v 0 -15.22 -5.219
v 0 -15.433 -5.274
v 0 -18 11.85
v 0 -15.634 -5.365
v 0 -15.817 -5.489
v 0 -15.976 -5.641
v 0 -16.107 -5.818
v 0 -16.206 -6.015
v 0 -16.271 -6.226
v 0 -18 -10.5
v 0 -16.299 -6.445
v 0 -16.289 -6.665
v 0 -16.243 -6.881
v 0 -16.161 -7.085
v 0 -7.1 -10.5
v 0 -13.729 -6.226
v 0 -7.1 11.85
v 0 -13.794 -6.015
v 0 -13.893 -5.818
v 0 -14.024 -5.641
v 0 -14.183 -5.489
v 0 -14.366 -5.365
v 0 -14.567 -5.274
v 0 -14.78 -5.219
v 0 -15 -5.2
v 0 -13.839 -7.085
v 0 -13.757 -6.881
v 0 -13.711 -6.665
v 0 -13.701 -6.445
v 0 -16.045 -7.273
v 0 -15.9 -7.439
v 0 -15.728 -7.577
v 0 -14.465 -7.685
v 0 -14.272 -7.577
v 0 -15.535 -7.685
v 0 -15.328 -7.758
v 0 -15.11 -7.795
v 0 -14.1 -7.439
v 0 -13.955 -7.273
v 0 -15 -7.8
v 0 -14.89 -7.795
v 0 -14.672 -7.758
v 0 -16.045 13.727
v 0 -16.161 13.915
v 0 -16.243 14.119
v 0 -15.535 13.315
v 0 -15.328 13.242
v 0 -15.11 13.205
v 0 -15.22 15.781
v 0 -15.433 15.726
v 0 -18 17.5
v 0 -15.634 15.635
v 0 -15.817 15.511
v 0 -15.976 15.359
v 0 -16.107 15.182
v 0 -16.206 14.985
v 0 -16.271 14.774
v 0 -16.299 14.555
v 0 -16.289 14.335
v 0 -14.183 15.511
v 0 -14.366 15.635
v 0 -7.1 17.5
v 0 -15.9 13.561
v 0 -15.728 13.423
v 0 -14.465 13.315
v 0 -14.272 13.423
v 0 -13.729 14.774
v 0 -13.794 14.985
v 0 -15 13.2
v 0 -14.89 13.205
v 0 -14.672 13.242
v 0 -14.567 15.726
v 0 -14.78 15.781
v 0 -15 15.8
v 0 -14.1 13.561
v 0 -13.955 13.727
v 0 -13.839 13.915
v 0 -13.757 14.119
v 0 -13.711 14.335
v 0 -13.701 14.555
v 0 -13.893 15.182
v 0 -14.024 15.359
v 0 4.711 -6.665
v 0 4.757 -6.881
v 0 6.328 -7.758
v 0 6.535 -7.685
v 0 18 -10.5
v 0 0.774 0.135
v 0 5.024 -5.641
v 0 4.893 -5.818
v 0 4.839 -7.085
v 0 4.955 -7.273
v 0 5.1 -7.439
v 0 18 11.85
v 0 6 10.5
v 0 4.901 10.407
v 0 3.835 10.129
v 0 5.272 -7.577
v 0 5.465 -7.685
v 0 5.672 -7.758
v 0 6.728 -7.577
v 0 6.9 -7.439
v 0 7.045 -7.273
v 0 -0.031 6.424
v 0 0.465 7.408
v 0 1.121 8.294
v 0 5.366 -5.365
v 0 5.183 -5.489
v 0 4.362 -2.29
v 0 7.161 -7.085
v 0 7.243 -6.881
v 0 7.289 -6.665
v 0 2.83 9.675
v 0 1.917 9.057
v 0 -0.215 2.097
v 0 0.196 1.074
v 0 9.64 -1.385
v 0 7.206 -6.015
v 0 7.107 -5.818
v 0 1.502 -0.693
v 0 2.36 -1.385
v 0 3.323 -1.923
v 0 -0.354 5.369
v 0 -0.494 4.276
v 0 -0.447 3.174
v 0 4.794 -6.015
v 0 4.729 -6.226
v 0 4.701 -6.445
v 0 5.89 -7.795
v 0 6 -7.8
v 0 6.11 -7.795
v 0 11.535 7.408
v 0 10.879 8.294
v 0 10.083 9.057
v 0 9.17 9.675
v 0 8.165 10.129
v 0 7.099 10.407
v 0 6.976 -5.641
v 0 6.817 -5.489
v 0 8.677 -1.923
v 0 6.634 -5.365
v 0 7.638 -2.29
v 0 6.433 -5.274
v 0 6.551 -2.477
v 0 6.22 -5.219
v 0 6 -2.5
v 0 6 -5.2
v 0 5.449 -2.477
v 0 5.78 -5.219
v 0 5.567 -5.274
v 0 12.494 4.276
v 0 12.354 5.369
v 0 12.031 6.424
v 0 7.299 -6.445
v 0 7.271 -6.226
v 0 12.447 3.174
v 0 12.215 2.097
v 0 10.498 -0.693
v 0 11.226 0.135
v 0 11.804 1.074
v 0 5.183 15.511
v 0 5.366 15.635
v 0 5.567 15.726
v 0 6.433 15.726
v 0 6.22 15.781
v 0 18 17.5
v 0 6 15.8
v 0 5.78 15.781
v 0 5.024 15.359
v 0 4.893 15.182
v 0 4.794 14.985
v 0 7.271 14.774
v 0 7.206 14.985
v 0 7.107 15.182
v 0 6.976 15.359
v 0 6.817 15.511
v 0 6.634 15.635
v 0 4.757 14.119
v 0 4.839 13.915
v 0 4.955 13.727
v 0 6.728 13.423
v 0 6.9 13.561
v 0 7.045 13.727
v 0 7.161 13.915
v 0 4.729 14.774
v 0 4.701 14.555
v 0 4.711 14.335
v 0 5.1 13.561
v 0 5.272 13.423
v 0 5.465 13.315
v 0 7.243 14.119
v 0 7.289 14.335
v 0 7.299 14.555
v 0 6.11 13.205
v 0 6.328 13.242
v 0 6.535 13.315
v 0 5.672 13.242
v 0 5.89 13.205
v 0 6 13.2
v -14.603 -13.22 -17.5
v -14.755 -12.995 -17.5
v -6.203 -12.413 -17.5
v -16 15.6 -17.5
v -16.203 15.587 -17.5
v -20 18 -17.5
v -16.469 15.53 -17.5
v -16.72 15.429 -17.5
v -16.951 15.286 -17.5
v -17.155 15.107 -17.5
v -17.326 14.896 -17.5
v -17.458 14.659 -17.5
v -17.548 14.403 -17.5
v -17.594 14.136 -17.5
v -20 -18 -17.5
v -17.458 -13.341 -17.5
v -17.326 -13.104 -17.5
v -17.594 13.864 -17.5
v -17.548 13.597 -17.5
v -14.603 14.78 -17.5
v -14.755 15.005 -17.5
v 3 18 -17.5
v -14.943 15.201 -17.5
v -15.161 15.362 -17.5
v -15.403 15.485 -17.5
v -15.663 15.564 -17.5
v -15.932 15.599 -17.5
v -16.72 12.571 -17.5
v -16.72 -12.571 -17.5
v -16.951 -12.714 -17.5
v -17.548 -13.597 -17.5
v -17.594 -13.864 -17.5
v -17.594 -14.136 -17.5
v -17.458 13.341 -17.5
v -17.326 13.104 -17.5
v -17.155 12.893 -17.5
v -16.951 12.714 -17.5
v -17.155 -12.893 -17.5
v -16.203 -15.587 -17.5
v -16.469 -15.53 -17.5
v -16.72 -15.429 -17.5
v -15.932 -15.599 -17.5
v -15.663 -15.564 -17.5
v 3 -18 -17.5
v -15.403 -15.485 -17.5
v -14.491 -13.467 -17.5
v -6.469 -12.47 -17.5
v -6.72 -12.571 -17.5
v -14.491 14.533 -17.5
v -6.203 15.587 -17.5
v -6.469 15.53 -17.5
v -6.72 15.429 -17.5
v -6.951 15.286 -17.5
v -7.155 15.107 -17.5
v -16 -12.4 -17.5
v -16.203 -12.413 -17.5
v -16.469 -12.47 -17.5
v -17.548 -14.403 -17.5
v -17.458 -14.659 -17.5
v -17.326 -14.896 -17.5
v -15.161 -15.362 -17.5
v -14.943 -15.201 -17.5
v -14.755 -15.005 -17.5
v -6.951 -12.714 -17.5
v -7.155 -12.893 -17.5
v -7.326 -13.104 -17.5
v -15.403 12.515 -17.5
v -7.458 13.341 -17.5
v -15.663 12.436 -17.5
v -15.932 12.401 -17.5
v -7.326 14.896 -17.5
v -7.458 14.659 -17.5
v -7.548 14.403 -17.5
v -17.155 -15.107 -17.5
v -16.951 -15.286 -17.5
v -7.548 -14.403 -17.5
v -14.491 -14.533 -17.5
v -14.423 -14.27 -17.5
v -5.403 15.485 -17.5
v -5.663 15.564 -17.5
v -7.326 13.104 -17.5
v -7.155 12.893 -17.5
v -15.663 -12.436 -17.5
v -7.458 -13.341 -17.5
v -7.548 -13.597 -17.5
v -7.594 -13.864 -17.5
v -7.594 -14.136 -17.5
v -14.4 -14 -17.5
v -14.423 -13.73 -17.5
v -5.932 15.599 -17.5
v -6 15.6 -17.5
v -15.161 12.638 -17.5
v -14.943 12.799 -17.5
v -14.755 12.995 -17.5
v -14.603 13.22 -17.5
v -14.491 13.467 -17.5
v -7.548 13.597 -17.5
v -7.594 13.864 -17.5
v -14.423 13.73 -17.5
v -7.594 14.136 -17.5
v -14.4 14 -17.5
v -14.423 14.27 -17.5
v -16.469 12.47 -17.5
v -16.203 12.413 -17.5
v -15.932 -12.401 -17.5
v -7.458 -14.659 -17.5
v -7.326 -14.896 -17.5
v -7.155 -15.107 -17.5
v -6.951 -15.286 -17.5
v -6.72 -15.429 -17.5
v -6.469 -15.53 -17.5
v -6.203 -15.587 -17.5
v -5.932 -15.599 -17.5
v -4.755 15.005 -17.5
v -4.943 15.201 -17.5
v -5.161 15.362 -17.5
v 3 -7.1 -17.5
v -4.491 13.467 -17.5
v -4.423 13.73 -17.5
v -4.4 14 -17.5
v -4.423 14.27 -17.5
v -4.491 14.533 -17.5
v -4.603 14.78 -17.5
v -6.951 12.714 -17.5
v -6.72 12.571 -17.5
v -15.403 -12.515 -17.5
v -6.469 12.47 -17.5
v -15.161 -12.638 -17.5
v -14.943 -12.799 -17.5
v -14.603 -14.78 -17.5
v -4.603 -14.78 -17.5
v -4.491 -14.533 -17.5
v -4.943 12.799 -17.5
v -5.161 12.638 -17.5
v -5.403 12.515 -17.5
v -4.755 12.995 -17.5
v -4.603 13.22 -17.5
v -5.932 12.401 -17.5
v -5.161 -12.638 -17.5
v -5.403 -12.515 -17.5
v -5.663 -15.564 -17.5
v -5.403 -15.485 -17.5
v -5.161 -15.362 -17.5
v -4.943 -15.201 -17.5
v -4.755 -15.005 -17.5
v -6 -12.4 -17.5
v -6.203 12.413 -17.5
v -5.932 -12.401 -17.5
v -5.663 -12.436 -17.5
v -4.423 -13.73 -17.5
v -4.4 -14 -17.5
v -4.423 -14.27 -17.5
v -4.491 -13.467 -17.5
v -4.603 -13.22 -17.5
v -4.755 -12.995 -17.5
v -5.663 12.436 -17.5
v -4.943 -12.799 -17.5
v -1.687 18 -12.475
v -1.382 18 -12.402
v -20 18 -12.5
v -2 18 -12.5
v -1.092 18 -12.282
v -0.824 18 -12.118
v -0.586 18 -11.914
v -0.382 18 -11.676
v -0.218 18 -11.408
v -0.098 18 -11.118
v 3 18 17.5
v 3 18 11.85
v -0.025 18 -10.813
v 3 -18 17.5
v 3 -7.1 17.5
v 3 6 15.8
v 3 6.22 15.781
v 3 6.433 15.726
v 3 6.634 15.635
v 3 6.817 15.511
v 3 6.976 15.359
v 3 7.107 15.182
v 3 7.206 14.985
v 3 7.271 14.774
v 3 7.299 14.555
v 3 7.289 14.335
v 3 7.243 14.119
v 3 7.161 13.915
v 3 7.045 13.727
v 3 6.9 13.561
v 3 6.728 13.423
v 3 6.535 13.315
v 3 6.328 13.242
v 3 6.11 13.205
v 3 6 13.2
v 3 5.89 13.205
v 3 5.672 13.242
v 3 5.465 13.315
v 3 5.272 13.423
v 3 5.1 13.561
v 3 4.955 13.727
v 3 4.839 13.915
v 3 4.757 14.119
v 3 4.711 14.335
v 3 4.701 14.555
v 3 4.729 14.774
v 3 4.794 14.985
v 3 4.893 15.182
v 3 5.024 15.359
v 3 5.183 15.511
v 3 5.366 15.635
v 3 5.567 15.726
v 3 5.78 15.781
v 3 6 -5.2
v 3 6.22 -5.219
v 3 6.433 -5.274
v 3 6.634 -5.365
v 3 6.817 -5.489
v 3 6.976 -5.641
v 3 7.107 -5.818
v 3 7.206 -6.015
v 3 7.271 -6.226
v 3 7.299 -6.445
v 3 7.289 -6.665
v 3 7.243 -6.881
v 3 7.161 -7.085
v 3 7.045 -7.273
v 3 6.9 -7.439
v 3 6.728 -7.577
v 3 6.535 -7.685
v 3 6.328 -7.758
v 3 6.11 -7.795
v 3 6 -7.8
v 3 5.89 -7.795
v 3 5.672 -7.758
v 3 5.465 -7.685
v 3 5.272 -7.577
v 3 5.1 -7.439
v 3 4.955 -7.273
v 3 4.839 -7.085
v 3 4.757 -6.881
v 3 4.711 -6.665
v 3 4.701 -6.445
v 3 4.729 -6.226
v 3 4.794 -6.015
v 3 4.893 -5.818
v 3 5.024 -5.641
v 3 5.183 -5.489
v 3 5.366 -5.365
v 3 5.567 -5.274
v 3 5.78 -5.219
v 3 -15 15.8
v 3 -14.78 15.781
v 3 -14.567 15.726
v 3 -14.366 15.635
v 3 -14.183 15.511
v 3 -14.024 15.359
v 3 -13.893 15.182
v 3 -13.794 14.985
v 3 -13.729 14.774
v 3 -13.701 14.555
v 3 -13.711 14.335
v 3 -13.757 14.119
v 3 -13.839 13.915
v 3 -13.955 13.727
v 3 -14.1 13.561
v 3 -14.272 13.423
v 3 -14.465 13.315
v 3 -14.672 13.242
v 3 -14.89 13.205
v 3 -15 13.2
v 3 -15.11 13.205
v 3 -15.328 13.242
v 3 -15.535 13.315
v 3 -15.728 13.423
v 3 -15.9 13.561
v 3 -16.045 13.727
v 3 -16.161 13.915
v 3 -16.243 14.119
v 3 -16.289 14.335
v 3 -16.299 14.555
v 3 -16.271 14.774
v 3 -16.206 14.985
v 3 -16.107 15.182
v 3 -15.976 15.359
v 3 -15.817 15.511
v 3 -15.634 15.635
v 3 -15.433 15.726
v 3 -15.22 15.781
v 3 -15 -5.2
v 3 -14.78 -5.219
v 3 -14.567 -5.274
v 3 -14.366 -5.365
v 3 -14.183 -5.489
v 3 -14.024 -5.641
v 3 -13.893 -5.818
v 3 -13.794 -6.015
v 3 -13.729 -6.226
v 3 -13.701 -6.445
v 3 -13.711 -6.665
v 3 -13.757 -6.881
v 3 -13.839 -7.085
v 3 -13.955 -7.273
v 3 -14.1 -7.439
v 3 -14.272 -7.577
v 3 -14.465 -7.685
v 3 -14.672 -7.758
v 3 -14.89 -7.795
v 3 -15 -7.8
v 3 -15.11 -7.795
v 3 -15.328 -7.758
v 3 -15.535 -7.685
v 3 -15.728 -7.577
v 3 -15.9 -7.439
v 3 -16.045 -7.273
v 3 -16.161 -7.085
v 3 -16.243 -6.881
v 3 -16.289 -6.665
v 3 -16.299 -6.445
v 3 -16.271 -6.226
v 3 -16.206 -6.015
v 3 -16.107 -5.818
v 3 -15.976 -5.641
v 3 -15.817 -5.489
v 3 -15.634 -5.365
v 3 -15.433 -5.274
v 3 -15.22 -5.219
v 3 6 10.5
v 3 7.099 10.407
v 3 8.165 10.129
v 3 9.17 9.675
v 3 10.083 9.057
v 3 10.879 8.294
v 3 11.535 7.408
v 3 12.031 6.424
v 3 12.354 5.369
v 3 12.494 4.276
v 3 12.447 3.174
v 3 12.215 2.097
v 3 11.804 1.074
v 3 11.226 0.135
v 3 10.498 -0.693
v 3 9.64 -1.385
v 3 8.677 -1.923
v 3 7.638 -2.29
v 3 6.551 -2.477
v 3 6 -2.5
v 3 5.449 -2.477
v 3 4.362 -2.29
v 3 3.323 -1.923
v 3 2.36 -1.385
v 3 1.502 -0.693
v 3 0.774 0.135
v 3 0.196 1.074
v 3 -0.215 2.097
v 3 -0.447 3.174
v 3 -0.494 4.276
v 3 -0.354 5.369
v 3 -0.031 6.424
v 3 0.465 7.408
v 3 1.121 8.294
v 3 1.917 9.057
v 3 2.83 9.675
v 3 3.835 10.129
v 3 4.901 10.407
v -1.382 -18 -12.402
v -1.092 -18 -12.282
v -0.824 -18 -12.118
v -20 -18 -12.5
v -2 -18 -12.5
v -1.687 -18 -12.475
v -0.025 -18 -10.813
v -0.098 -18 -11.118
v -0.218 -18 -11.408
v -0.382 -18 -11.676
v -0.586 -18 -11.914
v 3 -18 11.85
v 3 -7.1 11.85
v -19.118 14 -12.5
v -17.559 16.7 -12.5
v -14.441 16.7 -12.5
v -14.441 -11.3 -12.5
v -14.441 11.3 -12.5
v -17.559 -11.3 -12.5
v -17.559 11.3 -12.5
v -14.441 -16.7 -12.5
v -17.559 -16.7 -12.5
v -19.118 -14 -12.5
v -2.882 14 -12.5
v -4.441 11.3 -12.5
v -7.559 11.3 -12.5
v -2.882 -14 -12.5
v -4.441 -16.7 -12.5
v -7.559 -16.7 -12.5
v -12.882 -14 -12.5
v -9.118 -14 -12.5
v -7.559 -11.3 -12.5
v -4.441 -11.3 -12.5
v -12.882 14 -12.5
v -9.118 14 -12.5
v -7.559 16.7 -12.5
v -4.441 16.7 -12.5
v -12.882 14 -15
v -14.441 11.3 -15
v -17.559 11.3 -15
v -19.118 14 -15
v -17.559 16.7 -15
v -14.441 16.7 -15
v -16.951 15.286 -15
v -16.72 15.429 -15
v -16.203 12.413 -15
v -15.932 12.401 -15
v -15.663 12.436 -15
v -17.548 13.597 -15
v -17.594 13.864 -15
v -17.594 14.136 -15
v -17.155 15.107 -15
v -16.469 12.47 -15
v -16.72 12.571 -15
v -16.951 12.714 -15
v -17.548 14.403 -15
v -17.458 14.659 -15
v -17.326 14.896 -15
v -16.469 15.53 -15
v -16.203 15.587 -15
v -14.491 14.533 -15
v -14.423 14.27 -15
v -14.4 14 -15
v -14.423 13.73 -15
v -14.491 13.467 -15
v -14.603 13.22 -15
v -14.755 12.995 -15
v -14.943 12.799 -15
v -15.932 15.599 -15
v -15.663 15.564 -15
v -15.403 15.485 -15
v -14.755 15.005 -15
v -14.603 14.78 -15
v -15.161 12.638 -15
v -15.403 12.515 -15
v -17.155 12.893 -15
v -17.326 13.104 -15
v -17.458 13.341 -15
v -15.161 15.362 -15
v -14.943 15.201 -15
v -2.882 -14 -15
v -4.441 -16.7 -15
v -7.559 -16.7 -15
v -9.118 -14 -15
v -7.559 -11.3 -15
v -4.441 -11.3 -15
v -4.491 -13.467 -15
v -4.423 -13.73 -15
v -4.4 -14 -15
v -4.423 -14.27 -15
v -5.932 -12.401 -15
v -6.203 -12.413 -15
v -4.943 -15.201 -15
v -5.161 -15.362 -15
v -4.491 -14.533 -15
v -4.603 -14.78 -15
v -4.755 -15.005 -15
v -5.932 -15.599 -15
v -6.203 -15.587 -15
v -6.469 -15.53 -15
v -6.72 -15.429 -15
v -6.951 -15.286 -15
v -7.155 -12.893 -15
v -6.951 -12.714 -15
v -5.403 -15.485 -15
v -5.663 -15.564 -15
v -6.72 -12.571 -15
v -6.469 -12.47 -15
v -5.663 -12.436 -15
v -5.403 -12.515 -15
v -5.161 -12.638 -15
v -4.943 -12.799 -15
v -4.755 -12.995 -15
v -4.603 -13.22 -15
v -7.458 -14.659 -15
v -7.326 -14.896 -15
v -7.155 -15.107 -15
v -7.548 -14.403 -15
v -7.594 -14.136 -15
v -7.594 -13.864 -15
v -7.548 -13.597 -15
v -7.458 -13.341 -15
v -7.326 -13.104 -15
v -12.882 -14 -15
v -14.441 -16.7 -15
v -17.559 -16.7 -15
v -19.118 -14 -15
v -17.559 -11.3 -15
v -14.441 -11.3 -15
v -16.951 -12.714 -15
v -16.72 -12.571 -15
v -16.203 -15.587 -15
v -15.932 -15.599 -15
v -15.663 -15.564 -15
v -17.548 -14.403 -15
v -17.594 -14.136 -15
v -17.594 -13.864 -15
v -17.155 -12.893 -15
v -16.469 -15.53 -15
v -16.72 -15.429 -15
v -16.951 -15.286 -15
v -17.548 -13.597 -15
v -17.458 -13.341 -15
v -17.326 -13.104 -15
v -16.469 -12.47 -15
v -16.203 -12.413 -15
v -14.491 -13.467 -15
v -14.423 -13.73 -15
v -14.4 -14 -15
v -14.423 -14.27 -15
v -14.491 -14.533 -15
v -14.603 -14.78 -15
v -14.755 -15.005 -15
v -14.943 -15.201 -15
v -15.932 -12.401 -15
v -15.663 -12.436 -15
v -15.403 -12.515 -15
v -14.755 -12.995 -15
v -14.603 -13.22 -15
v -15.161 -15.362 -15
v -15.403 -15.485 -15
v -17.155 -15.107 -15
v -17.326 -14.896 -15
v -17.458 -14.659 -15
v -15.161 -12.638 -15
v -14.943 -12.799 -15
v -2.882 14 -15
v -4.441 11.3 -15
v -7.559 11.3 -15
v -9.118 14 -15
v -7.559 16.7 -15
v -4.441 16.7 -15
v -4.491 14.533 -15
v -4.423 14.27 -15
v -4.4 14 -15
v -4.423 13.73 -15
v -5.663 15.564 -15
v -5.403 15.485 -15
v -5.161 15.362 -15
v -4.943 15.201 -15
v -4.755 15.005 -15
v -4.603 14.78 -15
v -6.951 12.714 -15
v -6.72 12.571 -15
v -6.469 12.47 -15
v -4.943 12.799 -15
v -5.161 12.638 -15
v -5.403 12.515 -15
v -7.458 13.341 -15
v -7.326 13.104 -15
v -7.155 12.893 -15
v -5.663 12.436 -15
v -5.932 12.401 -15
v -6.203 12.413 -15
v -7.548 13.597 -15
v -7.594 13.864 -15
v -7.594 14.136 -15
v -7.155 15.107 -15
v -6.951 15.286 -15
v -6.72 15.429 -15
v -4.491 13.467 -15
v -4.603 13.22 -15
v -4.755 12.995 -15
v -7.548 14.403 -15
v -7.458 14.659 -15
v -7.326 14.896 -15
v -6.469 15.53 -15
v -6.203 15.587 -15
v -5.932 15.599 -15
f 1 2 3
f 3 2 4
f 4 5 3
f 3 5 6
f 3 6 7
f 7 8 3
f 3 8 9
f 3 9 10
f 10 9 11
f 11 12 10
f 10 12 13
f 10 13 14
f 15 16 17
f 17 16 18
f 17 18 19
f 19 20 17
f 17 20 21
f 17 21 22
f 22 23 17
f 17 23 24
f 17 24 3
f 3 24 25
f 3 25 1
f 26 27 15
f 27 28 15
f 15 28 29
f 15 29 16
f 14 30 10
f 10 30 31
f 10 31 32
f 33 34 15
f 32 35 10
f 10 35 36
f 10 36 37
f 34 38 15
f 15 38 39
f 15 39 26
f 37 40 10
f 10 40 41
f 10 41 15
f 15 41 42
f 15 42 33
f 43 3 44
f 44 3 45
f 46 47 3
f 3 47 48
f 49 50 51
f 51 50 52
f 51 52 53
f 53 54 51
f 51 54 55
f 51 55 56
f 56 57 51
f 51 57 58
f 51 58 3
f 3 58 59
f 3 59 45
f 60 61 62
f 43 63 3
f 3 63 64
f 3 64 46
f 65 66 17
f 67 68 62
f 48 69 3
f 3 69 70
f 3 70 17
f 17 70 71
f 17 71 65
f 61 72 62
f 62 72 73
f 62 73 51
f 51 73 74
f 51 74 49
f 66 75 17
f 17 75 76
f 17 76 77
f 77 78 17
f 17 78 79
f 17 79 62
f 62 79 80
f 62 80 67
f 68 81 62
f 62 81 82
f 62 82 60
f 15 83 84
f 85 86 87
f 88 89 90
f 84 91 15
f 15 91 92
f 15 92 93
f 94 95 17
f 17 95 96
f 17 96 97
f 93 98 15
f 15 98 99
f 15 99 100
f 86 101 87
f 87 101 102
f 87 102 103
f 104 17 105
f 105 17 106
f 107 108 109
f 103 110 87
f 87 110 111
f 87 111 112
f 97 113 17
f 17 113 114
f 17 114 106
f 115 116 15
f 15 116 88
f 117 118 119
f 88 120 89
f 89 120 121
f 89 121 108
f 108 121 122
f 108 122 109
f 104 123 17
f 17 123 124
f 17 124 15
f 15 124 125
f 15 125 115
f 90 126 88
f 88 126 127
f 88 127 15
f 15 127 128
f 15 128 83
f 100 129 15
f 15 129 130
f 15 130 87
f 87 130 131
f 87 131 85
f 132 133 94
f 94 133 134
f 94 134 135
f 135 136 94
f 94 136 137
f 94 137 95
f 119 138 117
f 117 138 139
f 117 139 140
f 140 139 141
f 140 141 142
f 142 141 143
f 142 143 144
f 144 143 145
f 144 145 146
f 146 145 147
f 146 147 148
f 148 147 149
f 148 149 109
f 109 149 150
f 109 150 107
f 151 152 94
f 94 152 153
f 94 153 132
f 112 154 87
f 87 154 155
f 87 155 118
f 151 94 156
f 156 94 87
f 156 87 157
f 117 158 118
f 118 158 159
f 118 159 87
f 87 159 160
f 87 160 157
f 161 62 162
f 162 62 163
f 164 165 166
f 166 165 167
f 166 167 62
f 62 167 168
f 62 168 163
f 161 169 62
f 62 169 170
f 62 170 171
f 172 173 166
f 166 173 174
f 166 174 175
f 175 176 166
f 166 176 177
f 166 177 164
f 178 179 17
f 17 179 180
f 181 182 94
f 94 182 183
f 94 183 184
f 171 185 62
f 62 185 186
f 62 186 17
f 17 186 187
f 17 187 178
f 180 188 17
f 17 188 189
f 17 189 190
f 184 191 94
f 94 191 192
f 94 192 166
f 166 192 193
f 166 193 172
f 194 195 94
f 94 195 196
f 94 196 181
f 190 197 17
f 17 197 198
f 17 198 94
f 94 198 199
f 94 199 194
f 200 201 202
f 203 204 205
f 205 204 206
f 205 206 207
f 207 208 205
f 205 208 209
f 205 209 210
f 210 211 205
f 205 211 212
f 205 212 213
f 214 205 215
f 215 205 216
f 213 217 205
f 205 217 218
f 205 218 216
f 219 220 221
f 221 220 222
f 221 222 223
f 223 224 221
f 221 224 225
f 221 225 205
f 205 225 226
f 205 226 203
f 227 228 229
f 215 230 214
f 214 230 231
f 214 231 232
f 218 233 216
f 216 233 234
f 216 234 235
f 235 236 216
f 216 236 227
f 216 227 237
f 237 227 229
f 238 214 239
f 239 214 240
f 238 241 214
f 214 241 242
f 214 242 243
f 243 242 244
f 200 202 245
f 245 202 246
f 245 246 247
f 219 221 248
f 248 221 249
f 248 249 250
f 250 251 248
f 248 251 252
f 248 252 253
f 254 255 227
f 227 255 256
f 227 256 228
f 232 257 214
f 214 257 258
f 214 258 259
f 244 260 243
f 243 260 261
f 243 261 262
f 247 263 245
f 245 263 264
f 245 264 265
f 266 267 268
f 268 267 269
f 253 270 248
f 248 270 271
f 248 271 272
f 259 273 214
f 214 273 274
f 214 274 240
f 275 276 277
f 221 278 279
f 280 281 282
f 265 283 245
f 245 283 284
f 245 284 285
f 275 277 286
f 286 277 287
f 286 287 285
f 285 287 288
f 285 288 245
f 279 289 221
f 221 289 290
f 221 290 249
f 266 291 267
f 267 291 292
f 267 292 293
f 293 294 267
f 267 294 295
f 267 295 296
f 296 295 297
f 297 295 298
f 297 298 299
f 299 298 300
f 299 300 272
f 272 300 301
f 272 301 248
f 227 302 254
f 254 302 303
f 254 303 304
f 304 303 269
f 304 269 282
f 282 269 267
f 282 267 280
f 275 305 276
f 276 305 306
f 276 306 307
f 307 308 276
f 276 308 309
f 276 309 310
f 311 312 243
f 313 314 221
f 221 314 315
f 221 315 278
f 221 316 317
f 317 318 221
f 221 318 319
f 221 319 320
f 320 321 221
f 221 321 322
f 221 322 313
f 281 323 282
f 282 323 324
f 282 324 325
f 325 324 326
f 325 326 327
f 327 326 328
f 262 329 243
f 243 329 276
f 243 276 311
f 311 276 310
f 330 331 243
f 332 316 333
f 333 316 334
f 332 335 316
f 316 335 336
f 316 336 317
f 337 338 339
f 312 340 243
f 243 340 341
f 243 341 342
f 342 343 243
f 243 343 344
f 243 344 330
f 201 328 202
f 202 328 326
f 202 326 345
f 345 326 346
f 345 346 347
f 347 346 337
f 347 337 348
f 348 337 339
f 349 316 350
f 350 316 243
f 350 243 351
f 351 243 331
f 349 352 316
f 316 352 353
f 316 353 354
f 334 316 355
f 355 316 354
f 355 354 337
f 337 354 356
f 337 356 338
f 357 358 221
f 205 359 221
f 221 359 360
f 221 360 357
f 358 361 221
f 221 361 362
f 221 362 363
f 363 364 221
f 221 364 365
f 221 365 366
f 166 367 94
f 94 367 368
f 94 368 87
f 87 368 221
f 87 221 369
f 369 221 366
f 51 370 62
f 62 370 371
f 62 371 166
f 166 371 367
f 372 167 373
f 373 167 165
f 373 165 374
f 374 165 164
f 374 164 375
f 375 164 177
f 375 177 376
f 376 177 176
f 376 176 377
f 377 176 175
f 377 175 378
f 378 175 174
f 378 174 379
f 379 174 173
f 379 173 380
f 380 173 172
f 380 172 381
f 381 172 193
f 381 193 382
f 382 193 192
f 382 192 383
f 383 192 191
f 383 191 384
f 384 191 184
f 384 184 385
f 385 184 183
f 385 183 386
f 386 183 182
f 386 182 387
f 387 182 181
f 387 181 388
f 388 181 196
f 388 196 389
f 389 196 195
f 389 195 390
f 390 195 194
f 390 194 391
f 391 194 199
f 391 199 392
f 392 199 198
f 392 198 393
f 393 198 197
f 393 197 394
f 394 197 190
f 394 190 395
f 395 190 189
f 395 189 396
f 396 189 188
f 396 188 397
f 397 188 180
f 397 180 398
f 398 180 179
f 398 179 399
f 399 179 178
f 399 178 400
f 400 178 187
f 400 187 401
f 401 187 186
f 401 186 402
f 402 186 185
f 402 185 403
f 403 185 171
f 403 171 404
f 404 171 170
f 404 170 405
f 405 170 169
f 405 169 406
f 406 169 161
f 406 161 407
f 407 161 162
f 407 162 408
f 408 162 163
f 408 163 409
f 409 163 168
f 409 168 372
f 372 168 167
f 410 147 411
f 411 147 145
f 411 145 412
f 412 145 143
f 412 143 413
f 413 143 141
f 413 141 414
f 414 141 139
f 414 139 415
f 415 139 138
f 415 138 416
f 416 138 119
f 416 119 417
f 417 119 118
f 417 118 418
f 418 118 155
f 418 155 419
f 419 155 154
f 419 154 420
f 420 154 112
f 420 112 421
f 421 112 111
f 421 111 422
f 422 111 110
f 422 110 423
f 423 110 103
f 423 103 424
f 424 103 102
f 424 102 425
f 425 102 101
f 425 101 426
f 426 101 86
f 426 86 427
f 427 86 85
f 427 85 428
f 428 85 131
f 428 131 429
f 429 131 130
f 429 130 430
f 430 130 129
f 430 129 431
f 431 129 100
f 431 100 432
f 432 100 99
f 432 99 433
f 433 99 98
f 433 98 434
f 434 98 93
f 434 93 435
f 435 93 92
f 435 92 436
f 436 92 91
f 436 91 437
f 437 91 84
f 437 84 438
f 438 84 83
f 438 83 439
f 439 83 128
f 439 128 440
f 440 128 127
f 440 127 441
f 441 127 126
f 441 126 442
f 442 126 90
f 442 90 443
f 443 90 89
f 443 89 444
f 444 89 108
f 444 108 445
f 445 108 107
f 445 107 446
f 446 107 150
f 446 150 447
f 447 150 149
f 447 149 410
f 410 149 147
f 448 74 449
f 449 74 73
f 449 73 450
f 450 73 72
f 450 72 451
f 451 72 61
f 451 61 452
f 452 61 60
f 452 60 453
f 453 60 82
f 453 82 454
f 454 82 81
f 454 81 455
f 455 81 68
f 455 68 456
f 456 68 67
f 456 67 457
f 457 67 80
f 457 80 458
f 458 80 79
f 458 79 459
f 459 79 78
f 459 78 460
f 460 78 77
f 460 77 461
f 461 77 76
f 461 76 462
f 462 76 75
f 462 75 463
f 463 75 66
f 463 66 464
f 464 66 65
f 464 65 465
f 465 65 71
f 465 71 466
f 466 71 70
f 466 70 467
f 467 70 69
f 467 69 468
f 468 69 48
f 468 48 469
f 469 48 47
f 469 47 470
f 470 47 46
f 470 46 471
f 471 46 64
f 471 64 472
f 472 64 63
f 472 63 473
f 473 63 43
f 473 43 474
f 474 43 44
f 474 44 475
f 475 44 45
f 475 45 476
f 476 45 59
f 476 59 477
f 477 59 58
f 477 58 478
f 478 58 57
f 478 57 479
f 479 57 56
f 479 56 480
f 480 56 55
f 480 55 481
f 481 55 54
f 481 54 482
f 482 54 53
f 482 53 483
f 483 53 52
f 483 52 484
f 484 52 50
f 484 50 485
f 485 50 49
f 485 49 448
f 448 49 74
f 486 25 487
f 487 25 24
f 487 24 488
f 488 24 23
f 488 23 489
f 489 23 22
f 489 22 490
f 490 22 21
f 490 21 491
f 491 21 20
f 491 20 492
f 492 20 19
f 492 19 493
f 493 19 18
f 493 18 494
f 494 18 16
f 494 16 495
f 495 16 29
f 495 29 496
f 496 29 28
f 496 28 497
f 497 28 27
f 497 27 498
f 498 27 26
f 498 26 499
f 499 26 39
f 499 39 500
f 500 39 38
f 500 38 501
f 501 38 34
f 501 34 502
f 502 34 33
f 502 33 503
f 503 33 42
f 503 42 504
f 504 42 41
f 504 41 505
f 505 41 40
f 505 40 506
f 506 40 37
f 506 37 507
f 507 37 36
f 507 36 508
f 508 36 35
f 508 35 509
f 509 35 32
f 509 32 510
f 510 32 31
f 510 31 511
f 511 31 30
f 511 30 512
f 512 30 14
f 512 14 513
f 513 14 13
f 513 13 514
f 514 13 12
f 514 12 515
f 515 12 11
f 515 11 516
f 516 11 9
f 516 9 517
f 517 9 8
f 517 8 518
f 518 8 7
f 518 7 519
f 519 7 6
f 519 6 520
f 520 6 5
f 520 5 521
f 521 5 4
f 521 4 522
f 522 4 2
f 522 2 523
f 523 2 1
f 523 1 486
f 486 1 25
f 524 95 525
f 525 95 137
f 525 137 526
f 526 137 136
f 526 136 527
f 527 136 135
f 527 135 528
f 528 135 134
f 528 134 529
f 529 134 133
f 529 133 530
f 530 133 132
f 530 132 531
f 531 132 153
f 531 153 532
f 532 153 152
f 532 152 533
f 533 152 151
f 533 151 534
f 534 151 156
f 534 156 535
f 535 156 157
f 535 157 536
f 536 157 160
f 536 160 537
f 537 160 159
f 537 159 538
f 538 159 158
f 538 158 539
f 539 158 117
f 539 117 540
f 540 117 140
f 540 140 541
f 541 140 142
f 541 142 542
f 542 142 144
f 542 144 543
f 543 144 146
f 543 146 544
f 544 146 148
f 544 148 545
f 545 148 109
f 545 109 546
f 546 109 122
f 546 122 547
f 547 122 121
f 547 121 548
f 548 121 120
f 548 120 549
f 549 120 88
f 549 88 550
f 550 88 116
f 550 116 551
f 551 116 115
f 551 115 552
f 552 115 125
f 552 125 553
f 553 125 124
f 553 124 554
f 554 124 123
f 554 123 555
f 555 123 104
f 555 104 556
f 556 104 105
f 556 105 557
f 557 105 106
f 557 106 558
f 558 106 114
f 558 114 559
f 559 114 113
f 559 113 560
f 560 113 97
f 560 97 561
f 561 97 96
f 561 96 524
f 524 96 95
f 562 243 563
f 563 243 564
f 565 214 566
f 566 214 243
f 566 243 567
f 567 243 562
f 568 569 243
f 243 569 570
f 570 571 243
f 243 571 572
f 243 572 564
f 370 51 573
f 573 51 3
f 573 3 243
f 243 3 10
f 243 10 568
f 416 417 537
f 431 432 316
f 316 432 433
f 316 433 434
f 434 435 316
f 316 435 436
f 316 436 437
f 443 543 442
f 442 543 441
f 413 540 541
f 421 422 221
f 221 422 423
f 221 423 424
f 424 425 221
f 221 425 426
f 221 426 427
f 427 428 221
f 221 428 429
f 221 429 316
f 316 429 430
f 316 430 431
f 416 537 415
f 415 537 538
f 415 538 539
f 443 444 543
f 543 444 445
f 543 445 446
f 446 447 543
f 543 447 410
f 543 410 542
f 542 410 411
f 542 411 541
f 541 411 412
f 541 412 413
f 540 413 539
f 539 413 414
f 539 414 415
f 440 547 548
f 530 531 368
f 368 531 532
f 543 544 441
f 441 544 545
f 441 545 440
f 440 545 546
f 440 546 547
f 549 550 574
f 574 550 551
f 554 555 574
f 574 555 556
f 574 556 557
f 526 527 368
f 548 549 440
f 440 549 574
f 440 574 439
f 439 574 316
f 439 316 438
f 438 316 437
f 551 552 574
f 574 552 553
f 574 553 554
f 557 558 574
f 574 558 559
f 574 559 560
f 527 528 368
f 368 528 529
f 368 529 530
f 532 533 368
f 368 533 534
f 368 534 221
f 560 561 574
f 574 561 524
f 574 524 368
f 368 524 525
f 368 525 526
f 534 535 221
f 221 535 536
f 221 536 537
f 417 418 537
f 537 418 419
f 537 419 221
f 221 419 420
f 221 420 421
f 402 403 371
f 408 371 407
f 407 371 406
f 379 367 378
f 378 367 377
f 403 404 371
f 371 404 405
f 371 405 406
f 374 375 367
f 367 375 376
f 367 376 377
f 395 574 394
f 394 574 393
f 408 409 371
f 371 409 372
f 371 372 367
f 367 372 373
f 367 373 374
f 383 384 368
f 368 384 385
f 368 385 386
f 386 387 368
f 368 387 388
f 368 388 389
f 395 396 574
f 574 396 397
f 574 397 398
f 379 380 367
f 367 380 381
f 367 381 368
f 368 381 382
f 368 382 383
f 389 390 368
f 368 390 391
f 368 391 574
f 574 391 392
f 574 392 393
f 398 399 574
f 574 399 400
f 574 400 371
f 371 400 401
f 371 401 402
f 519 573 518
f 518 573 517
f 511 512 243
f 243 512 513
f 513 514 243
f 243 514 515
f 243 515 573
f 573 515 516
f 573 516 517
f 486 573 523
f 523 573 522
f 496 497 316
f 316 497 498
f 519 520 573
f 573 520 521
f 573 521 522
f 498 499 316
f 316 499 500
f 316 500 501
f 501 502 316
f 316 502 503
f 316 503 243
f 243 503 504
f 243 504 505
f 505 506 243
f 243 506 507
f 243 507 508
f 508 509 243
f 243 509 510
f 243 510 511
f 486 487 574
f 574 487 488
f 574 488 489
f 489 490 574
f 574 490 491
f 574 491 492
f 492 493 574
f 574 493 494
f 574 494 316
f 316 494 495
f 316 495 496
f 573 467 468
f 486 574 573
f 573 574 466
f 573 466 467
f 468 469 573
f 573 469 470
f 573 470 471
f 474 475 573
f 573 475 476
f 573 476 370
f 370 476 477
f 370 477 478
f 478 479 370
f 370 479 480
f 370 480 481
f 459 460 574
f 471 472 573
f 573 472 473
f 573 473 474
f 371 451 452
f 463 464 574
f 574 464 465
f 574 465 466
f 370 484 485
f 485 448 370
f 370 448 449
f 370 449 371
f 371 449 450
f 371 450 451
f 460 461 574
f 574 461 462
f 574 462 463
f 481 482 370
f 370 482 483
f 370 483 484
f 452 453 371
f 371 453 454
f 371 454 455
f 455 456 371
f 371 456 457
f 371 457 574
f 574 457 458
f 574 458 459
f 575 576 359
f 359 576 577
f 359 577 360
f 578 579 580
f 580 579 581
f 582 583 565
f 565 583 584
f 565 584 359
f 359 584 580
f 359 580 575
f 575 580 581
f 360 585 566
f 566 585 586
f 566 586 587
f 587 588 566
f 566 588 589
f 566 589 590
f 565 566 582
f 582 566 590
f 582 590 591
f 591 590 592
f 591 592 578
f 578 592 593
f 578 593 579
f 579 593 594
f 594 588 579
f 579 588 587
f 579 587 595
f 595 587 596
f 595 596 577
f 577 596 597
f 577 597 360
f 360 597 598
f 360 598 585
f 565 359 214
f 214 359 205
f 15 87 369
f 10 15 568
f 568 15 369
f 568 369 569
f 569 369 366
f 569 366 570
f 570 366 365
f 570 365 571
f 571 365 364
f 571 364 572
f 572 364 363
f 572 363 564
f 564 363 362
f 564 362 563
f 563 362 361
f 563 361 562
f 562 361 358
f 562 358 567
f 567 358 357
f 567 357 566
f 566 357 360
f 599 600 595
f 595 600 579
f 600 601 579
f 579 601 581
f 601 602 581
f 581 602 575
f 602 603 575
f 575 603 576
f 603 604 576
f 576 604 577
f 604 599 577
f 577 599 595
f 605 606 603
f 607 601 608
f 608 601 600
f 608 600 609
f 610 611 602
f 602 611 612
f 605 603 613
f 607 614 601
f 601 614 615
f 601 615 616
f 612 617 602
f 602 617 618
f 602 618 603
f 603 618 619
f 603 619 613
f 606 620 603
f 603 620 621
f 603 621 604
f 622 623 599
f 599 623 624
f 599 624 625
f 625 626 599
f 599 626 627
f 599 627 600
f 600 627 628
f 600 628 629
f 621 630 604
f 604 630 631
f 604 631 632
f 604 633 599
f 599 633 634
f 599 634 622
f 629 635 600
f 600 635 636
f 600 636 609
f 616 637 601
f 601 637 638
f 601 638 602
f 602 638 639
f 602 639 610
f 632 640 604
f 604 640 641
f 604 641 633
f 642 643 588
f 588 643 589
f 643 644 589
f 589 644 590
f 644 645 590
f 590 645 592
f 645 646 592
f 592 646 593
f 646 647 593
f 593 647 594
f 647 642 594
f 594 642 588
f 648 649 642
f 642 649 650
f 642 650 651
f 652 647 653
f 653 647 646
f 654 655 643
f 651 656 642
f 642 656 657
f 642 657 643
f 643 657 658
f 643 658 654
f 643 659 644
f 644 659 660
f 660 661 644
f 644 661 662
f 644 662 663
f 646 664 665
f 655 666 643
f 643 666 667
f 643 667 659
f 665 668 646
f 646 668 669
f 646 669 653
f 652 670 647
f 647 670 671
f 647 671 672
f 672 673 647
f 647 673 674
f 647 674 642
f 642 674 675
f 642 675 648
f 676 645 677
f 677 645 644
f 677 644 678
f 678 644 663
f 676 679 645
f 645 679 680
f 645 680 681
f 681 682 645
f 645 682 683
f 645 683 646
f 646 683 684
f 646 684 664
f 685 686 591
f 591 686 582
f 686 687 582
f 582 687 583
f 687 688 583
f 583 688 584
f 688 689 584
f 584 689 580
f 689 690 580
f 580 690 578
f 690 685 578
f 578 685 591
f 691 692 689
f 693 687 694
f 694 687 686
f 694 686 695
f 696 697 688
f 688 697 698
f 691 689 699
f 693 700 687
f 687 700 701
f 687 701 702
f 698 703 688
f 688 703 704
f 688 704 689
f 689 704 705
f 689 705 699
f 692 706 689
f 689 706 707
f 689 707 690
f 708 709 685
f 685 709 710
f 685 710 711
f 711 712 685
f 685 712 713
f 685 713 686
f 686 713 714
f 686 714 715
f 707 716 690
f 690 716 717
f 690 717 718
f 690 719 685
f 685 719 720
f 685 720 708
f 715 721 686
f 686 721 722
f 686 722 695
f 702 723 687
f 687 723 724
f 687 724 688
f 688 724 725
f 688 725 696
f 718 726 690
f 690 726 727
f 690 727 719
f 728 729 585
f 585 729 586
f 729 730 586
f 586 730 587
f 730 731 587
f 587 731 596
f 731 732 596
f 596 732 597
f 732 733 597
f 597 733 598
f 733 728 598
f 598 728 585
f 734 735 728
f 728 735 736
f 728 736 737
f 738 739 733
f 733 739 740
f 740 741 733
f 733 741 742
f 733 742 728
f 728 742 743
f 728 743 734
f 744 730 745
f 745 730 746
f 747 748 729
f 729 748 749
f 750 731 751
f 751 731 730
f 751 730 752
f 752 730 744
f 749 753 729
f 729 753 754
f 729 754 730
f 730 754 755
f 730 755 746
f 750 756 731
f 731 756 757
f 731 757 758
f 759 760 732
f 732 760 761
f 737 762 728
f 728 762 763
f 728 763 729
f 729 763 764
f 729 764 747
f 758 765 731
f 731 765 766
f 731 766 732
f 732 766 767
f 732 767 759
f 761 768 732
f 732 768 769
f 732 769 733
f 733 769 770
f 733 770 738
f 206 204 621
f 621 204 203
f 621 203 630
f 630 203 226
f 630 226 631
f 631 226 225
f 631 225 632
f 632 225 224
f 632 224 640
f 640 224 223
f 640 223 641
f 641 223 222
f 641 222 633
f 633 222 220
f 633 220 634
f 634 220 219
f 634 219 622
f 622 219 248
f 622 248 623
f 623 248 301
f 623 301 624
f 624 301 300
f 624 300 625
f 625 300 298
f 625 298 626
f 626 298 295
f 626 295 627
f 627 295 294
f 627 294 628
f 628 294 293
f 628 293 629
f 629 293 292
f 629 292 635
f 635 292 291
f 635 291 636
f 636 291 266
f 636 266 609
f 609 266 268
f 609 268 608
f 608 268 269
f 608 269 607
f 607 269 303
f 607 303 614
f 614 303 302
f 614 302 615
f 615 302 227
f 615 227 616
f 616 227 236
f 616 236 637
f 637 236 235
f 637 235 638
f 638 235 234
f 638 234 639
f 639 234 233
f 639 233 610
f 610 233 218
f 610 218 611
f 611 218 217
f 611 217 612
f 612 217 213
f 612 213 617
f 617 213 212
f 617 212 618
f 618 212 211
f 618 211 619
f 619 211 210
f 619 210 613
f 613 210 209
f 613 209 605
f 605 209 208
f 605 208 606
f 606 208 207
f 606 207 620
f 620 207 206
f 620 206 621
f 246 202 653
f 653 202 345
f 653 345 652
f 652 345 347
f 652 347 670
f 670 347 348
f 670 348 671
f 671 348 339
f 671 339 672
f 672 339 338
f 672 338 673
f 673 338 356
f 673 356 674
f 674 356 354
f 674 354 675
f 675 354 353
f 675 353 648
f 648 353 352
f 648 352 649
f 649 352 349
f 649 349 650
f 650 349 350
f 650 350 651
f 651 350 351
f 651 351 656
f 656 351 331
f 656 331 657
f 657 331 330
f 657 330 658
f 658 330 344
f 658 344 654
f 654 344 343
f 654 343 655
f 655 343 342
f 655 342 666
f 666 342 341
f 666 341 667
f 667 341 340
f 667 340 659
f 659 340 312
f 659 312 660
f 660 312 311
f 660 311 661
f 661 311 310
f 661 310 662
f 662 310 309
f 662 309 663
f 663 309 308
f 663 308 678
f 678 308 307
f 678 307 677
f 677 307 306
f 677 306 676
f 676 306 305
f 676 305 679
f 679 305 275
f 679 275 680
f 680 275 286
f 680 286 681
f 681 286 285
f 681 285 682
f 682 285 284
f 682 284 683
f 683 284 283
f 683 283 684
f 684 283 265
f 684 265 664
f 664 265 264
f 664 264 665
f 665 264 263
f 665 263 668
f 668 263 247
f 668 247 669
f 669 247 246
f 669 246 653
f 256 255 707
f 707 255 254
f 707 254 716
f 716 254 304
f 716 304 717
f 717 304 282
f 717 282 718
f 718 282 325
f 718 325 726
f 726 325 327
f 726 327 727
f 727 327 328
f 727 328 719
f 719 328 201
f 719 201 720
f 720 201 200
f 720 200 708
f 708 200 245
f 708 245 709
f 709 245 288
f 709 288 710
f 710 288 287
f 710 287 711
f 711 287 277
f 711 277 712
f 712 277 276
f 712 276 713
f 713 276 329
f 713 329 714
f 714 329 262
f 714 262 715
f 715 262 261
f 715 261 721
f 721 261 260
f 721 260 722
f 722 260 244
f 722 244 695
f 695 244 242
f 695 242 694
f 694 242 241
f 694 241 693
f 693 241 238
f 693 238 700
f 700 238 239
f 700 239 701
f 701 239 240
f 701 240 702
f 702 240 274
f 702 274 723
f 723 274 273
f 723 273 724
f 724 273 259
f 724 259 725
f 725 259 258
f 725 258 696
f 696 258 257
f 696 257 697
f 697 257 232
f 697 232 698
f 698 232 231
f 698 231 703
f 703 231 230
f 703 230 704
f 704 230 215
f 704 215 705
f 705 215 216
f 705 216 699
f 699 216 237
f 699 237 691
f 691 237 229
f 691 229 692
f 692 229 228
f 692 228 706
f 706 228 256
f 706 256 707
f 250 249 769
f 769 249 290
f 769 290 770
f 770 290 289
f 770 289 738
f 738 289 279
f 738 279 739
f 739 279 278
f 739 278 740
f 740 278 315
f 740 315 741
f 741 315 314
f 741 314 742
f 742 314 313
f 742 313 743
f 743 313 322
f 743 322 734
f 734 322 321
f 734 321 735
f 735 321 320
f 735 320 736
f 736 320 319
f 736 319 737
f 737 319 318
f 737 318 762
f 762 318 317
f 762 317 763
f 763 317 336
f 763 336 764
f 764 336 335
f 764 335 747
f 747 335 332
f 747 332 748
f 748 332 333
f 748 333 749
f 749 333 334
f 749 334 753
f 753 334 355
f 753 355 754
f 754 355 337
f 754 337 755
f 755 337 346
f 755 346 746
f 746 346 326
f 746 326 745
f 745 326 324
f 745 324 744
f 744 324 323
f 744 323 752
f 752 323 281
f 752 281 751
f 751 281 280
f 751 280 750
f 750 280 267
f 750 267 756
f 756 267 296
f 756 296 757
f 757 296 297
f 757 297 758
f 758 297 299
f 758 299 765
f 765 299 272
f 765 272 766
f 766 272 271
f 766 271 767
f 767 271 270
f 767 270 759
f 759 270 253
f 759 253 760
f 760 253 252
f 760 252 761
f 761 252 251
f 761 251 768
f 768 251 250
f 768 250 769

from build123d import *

# Parameters (mm, degrees)
SKETCH_2_W          = 35
SKETCH_2_H          = 36
SKETCH_2_R          = 1.3
SKETCH_2_R_2        = 6.5
EXTRUDE_1_DEPTH     = 3
SKETCH_4_W          = 5
SKETCH_4_H          = 36
EXTRUDE_2_DEPTH     = 20
FILLET_1_R          = 2
CUT_EXTRUDE_1_DEPTH = 2.5
SKETCH_7_R          = 1.6
CUT_EXTRUDE_2_DEPTH = 10


with BuildPart() as part:
    # ｽｹｯﾁ2 → ﾎﾞｽ - 押し出し1 (new body)
    with BuildSketch(Plane(origin=(0, 0, 0), x_dir=(0, 0, -1), z_dir=(1, 0, 0))):
        Rectangle(SKETCH_2_W, SKETCH_2_H)
        with Locations((-14.5, 6)):
            Circle(SKETCH_2_R, mode=Mode.SUBTRACT)
        with Locations((6.5, 6)):
            Circle(SKETCH_2_R, mode=Mode.SUBTRACT)
        with Locations((-14.5, -15)):
            Circle(SKETCH_2_R, mode=Mode.SUBTRACT)
        with Locations((6.5, -15)):
            Circle(SKETCH_2_R, mode=Mode.SUBTRACT)
        with Locations((-4, 6)):
            Circle(SKETCH_2_R_2, mode=Mode.SUBTRACT)
    extrude(amount=EXTRUDE_1_DEPTH)

    # ｽｹｯﾁ4 → ﾎﾞｽ - 押し出し2 (add)
    with BuildSketch(Plane.ZY):
        with Locations((-15, 0)):
            Rectangle(SKETCH_4_W, SKETCH_4_H)
    extrude(amount=EXTRUDE_2_DEPTH)

    # ﾌｨﾚｯﾄ1
    fillet_1_edges = [part.edges().sort_by_distance(p)[0] for p in [
        (0, 0, -12.5),
    ]]
    fillet(fillet_1_edges, radius=FILLET_1_R)

    # ｽｹｯﾁ5 → ｶｯﾄ - 押し出し1 (cut)
    with BuildSketch(Plane.XY.offset(-12.5)):
        Polygon((-12.882308546, 14), (-14.441154273, 16.7), (-17.558845727, 16.7), (-19.117691454, 14), (-17.558845727, 11.3), (-14.441154273, 11.3), align=None)
        Polygon((-2.882308546, 14), (-4.441154273, 16.7), (-7.558845727, 16.7), (-9.117691454, 14), (-7.558845727, 11.3), (-4.441154273, 11.3), align=None)
        Polygon((-12.882308546, -14), (-14.441154273, -11.3), (-17.558845727, -11.3), (-19.117691454, -14), (-17.558845727, -16.7), (-14.441154273, -16.7), align=None)
        Polygon((-2.882308546, -14), (-4.441154273, -11.3), (-7.558845727, -11.3), (-9.117691454, -14), (-7.558845727, -16.7), (-4.441154273, -16.7), align=None)
    extrude(amount=-CUT_EXTRUDE_1_DEPTH, mode=Mode.SUBTRACT)

    # ｽｹｯﾁ7 → ｶｯﾄ - 押し出し2 (cut)
    with BuildSketch(Plane.XY.offset(-15)):
        with Locations((-16, 14)):
            Circle(SKETCH_7_R)
        with Locations((-6, 14)):
            Circle(SKETCH_7_R)
        with Locations((-16, -14)):
            Circle(SKETCH_7_R)
        with Locations((-6, -14)):
            Circle(SKETCH_7_R)
    extrude(amount=-CUT_EXTRUDE_2_DEPTH, mode=Mode.SUBTRACT)


solid = part.part
